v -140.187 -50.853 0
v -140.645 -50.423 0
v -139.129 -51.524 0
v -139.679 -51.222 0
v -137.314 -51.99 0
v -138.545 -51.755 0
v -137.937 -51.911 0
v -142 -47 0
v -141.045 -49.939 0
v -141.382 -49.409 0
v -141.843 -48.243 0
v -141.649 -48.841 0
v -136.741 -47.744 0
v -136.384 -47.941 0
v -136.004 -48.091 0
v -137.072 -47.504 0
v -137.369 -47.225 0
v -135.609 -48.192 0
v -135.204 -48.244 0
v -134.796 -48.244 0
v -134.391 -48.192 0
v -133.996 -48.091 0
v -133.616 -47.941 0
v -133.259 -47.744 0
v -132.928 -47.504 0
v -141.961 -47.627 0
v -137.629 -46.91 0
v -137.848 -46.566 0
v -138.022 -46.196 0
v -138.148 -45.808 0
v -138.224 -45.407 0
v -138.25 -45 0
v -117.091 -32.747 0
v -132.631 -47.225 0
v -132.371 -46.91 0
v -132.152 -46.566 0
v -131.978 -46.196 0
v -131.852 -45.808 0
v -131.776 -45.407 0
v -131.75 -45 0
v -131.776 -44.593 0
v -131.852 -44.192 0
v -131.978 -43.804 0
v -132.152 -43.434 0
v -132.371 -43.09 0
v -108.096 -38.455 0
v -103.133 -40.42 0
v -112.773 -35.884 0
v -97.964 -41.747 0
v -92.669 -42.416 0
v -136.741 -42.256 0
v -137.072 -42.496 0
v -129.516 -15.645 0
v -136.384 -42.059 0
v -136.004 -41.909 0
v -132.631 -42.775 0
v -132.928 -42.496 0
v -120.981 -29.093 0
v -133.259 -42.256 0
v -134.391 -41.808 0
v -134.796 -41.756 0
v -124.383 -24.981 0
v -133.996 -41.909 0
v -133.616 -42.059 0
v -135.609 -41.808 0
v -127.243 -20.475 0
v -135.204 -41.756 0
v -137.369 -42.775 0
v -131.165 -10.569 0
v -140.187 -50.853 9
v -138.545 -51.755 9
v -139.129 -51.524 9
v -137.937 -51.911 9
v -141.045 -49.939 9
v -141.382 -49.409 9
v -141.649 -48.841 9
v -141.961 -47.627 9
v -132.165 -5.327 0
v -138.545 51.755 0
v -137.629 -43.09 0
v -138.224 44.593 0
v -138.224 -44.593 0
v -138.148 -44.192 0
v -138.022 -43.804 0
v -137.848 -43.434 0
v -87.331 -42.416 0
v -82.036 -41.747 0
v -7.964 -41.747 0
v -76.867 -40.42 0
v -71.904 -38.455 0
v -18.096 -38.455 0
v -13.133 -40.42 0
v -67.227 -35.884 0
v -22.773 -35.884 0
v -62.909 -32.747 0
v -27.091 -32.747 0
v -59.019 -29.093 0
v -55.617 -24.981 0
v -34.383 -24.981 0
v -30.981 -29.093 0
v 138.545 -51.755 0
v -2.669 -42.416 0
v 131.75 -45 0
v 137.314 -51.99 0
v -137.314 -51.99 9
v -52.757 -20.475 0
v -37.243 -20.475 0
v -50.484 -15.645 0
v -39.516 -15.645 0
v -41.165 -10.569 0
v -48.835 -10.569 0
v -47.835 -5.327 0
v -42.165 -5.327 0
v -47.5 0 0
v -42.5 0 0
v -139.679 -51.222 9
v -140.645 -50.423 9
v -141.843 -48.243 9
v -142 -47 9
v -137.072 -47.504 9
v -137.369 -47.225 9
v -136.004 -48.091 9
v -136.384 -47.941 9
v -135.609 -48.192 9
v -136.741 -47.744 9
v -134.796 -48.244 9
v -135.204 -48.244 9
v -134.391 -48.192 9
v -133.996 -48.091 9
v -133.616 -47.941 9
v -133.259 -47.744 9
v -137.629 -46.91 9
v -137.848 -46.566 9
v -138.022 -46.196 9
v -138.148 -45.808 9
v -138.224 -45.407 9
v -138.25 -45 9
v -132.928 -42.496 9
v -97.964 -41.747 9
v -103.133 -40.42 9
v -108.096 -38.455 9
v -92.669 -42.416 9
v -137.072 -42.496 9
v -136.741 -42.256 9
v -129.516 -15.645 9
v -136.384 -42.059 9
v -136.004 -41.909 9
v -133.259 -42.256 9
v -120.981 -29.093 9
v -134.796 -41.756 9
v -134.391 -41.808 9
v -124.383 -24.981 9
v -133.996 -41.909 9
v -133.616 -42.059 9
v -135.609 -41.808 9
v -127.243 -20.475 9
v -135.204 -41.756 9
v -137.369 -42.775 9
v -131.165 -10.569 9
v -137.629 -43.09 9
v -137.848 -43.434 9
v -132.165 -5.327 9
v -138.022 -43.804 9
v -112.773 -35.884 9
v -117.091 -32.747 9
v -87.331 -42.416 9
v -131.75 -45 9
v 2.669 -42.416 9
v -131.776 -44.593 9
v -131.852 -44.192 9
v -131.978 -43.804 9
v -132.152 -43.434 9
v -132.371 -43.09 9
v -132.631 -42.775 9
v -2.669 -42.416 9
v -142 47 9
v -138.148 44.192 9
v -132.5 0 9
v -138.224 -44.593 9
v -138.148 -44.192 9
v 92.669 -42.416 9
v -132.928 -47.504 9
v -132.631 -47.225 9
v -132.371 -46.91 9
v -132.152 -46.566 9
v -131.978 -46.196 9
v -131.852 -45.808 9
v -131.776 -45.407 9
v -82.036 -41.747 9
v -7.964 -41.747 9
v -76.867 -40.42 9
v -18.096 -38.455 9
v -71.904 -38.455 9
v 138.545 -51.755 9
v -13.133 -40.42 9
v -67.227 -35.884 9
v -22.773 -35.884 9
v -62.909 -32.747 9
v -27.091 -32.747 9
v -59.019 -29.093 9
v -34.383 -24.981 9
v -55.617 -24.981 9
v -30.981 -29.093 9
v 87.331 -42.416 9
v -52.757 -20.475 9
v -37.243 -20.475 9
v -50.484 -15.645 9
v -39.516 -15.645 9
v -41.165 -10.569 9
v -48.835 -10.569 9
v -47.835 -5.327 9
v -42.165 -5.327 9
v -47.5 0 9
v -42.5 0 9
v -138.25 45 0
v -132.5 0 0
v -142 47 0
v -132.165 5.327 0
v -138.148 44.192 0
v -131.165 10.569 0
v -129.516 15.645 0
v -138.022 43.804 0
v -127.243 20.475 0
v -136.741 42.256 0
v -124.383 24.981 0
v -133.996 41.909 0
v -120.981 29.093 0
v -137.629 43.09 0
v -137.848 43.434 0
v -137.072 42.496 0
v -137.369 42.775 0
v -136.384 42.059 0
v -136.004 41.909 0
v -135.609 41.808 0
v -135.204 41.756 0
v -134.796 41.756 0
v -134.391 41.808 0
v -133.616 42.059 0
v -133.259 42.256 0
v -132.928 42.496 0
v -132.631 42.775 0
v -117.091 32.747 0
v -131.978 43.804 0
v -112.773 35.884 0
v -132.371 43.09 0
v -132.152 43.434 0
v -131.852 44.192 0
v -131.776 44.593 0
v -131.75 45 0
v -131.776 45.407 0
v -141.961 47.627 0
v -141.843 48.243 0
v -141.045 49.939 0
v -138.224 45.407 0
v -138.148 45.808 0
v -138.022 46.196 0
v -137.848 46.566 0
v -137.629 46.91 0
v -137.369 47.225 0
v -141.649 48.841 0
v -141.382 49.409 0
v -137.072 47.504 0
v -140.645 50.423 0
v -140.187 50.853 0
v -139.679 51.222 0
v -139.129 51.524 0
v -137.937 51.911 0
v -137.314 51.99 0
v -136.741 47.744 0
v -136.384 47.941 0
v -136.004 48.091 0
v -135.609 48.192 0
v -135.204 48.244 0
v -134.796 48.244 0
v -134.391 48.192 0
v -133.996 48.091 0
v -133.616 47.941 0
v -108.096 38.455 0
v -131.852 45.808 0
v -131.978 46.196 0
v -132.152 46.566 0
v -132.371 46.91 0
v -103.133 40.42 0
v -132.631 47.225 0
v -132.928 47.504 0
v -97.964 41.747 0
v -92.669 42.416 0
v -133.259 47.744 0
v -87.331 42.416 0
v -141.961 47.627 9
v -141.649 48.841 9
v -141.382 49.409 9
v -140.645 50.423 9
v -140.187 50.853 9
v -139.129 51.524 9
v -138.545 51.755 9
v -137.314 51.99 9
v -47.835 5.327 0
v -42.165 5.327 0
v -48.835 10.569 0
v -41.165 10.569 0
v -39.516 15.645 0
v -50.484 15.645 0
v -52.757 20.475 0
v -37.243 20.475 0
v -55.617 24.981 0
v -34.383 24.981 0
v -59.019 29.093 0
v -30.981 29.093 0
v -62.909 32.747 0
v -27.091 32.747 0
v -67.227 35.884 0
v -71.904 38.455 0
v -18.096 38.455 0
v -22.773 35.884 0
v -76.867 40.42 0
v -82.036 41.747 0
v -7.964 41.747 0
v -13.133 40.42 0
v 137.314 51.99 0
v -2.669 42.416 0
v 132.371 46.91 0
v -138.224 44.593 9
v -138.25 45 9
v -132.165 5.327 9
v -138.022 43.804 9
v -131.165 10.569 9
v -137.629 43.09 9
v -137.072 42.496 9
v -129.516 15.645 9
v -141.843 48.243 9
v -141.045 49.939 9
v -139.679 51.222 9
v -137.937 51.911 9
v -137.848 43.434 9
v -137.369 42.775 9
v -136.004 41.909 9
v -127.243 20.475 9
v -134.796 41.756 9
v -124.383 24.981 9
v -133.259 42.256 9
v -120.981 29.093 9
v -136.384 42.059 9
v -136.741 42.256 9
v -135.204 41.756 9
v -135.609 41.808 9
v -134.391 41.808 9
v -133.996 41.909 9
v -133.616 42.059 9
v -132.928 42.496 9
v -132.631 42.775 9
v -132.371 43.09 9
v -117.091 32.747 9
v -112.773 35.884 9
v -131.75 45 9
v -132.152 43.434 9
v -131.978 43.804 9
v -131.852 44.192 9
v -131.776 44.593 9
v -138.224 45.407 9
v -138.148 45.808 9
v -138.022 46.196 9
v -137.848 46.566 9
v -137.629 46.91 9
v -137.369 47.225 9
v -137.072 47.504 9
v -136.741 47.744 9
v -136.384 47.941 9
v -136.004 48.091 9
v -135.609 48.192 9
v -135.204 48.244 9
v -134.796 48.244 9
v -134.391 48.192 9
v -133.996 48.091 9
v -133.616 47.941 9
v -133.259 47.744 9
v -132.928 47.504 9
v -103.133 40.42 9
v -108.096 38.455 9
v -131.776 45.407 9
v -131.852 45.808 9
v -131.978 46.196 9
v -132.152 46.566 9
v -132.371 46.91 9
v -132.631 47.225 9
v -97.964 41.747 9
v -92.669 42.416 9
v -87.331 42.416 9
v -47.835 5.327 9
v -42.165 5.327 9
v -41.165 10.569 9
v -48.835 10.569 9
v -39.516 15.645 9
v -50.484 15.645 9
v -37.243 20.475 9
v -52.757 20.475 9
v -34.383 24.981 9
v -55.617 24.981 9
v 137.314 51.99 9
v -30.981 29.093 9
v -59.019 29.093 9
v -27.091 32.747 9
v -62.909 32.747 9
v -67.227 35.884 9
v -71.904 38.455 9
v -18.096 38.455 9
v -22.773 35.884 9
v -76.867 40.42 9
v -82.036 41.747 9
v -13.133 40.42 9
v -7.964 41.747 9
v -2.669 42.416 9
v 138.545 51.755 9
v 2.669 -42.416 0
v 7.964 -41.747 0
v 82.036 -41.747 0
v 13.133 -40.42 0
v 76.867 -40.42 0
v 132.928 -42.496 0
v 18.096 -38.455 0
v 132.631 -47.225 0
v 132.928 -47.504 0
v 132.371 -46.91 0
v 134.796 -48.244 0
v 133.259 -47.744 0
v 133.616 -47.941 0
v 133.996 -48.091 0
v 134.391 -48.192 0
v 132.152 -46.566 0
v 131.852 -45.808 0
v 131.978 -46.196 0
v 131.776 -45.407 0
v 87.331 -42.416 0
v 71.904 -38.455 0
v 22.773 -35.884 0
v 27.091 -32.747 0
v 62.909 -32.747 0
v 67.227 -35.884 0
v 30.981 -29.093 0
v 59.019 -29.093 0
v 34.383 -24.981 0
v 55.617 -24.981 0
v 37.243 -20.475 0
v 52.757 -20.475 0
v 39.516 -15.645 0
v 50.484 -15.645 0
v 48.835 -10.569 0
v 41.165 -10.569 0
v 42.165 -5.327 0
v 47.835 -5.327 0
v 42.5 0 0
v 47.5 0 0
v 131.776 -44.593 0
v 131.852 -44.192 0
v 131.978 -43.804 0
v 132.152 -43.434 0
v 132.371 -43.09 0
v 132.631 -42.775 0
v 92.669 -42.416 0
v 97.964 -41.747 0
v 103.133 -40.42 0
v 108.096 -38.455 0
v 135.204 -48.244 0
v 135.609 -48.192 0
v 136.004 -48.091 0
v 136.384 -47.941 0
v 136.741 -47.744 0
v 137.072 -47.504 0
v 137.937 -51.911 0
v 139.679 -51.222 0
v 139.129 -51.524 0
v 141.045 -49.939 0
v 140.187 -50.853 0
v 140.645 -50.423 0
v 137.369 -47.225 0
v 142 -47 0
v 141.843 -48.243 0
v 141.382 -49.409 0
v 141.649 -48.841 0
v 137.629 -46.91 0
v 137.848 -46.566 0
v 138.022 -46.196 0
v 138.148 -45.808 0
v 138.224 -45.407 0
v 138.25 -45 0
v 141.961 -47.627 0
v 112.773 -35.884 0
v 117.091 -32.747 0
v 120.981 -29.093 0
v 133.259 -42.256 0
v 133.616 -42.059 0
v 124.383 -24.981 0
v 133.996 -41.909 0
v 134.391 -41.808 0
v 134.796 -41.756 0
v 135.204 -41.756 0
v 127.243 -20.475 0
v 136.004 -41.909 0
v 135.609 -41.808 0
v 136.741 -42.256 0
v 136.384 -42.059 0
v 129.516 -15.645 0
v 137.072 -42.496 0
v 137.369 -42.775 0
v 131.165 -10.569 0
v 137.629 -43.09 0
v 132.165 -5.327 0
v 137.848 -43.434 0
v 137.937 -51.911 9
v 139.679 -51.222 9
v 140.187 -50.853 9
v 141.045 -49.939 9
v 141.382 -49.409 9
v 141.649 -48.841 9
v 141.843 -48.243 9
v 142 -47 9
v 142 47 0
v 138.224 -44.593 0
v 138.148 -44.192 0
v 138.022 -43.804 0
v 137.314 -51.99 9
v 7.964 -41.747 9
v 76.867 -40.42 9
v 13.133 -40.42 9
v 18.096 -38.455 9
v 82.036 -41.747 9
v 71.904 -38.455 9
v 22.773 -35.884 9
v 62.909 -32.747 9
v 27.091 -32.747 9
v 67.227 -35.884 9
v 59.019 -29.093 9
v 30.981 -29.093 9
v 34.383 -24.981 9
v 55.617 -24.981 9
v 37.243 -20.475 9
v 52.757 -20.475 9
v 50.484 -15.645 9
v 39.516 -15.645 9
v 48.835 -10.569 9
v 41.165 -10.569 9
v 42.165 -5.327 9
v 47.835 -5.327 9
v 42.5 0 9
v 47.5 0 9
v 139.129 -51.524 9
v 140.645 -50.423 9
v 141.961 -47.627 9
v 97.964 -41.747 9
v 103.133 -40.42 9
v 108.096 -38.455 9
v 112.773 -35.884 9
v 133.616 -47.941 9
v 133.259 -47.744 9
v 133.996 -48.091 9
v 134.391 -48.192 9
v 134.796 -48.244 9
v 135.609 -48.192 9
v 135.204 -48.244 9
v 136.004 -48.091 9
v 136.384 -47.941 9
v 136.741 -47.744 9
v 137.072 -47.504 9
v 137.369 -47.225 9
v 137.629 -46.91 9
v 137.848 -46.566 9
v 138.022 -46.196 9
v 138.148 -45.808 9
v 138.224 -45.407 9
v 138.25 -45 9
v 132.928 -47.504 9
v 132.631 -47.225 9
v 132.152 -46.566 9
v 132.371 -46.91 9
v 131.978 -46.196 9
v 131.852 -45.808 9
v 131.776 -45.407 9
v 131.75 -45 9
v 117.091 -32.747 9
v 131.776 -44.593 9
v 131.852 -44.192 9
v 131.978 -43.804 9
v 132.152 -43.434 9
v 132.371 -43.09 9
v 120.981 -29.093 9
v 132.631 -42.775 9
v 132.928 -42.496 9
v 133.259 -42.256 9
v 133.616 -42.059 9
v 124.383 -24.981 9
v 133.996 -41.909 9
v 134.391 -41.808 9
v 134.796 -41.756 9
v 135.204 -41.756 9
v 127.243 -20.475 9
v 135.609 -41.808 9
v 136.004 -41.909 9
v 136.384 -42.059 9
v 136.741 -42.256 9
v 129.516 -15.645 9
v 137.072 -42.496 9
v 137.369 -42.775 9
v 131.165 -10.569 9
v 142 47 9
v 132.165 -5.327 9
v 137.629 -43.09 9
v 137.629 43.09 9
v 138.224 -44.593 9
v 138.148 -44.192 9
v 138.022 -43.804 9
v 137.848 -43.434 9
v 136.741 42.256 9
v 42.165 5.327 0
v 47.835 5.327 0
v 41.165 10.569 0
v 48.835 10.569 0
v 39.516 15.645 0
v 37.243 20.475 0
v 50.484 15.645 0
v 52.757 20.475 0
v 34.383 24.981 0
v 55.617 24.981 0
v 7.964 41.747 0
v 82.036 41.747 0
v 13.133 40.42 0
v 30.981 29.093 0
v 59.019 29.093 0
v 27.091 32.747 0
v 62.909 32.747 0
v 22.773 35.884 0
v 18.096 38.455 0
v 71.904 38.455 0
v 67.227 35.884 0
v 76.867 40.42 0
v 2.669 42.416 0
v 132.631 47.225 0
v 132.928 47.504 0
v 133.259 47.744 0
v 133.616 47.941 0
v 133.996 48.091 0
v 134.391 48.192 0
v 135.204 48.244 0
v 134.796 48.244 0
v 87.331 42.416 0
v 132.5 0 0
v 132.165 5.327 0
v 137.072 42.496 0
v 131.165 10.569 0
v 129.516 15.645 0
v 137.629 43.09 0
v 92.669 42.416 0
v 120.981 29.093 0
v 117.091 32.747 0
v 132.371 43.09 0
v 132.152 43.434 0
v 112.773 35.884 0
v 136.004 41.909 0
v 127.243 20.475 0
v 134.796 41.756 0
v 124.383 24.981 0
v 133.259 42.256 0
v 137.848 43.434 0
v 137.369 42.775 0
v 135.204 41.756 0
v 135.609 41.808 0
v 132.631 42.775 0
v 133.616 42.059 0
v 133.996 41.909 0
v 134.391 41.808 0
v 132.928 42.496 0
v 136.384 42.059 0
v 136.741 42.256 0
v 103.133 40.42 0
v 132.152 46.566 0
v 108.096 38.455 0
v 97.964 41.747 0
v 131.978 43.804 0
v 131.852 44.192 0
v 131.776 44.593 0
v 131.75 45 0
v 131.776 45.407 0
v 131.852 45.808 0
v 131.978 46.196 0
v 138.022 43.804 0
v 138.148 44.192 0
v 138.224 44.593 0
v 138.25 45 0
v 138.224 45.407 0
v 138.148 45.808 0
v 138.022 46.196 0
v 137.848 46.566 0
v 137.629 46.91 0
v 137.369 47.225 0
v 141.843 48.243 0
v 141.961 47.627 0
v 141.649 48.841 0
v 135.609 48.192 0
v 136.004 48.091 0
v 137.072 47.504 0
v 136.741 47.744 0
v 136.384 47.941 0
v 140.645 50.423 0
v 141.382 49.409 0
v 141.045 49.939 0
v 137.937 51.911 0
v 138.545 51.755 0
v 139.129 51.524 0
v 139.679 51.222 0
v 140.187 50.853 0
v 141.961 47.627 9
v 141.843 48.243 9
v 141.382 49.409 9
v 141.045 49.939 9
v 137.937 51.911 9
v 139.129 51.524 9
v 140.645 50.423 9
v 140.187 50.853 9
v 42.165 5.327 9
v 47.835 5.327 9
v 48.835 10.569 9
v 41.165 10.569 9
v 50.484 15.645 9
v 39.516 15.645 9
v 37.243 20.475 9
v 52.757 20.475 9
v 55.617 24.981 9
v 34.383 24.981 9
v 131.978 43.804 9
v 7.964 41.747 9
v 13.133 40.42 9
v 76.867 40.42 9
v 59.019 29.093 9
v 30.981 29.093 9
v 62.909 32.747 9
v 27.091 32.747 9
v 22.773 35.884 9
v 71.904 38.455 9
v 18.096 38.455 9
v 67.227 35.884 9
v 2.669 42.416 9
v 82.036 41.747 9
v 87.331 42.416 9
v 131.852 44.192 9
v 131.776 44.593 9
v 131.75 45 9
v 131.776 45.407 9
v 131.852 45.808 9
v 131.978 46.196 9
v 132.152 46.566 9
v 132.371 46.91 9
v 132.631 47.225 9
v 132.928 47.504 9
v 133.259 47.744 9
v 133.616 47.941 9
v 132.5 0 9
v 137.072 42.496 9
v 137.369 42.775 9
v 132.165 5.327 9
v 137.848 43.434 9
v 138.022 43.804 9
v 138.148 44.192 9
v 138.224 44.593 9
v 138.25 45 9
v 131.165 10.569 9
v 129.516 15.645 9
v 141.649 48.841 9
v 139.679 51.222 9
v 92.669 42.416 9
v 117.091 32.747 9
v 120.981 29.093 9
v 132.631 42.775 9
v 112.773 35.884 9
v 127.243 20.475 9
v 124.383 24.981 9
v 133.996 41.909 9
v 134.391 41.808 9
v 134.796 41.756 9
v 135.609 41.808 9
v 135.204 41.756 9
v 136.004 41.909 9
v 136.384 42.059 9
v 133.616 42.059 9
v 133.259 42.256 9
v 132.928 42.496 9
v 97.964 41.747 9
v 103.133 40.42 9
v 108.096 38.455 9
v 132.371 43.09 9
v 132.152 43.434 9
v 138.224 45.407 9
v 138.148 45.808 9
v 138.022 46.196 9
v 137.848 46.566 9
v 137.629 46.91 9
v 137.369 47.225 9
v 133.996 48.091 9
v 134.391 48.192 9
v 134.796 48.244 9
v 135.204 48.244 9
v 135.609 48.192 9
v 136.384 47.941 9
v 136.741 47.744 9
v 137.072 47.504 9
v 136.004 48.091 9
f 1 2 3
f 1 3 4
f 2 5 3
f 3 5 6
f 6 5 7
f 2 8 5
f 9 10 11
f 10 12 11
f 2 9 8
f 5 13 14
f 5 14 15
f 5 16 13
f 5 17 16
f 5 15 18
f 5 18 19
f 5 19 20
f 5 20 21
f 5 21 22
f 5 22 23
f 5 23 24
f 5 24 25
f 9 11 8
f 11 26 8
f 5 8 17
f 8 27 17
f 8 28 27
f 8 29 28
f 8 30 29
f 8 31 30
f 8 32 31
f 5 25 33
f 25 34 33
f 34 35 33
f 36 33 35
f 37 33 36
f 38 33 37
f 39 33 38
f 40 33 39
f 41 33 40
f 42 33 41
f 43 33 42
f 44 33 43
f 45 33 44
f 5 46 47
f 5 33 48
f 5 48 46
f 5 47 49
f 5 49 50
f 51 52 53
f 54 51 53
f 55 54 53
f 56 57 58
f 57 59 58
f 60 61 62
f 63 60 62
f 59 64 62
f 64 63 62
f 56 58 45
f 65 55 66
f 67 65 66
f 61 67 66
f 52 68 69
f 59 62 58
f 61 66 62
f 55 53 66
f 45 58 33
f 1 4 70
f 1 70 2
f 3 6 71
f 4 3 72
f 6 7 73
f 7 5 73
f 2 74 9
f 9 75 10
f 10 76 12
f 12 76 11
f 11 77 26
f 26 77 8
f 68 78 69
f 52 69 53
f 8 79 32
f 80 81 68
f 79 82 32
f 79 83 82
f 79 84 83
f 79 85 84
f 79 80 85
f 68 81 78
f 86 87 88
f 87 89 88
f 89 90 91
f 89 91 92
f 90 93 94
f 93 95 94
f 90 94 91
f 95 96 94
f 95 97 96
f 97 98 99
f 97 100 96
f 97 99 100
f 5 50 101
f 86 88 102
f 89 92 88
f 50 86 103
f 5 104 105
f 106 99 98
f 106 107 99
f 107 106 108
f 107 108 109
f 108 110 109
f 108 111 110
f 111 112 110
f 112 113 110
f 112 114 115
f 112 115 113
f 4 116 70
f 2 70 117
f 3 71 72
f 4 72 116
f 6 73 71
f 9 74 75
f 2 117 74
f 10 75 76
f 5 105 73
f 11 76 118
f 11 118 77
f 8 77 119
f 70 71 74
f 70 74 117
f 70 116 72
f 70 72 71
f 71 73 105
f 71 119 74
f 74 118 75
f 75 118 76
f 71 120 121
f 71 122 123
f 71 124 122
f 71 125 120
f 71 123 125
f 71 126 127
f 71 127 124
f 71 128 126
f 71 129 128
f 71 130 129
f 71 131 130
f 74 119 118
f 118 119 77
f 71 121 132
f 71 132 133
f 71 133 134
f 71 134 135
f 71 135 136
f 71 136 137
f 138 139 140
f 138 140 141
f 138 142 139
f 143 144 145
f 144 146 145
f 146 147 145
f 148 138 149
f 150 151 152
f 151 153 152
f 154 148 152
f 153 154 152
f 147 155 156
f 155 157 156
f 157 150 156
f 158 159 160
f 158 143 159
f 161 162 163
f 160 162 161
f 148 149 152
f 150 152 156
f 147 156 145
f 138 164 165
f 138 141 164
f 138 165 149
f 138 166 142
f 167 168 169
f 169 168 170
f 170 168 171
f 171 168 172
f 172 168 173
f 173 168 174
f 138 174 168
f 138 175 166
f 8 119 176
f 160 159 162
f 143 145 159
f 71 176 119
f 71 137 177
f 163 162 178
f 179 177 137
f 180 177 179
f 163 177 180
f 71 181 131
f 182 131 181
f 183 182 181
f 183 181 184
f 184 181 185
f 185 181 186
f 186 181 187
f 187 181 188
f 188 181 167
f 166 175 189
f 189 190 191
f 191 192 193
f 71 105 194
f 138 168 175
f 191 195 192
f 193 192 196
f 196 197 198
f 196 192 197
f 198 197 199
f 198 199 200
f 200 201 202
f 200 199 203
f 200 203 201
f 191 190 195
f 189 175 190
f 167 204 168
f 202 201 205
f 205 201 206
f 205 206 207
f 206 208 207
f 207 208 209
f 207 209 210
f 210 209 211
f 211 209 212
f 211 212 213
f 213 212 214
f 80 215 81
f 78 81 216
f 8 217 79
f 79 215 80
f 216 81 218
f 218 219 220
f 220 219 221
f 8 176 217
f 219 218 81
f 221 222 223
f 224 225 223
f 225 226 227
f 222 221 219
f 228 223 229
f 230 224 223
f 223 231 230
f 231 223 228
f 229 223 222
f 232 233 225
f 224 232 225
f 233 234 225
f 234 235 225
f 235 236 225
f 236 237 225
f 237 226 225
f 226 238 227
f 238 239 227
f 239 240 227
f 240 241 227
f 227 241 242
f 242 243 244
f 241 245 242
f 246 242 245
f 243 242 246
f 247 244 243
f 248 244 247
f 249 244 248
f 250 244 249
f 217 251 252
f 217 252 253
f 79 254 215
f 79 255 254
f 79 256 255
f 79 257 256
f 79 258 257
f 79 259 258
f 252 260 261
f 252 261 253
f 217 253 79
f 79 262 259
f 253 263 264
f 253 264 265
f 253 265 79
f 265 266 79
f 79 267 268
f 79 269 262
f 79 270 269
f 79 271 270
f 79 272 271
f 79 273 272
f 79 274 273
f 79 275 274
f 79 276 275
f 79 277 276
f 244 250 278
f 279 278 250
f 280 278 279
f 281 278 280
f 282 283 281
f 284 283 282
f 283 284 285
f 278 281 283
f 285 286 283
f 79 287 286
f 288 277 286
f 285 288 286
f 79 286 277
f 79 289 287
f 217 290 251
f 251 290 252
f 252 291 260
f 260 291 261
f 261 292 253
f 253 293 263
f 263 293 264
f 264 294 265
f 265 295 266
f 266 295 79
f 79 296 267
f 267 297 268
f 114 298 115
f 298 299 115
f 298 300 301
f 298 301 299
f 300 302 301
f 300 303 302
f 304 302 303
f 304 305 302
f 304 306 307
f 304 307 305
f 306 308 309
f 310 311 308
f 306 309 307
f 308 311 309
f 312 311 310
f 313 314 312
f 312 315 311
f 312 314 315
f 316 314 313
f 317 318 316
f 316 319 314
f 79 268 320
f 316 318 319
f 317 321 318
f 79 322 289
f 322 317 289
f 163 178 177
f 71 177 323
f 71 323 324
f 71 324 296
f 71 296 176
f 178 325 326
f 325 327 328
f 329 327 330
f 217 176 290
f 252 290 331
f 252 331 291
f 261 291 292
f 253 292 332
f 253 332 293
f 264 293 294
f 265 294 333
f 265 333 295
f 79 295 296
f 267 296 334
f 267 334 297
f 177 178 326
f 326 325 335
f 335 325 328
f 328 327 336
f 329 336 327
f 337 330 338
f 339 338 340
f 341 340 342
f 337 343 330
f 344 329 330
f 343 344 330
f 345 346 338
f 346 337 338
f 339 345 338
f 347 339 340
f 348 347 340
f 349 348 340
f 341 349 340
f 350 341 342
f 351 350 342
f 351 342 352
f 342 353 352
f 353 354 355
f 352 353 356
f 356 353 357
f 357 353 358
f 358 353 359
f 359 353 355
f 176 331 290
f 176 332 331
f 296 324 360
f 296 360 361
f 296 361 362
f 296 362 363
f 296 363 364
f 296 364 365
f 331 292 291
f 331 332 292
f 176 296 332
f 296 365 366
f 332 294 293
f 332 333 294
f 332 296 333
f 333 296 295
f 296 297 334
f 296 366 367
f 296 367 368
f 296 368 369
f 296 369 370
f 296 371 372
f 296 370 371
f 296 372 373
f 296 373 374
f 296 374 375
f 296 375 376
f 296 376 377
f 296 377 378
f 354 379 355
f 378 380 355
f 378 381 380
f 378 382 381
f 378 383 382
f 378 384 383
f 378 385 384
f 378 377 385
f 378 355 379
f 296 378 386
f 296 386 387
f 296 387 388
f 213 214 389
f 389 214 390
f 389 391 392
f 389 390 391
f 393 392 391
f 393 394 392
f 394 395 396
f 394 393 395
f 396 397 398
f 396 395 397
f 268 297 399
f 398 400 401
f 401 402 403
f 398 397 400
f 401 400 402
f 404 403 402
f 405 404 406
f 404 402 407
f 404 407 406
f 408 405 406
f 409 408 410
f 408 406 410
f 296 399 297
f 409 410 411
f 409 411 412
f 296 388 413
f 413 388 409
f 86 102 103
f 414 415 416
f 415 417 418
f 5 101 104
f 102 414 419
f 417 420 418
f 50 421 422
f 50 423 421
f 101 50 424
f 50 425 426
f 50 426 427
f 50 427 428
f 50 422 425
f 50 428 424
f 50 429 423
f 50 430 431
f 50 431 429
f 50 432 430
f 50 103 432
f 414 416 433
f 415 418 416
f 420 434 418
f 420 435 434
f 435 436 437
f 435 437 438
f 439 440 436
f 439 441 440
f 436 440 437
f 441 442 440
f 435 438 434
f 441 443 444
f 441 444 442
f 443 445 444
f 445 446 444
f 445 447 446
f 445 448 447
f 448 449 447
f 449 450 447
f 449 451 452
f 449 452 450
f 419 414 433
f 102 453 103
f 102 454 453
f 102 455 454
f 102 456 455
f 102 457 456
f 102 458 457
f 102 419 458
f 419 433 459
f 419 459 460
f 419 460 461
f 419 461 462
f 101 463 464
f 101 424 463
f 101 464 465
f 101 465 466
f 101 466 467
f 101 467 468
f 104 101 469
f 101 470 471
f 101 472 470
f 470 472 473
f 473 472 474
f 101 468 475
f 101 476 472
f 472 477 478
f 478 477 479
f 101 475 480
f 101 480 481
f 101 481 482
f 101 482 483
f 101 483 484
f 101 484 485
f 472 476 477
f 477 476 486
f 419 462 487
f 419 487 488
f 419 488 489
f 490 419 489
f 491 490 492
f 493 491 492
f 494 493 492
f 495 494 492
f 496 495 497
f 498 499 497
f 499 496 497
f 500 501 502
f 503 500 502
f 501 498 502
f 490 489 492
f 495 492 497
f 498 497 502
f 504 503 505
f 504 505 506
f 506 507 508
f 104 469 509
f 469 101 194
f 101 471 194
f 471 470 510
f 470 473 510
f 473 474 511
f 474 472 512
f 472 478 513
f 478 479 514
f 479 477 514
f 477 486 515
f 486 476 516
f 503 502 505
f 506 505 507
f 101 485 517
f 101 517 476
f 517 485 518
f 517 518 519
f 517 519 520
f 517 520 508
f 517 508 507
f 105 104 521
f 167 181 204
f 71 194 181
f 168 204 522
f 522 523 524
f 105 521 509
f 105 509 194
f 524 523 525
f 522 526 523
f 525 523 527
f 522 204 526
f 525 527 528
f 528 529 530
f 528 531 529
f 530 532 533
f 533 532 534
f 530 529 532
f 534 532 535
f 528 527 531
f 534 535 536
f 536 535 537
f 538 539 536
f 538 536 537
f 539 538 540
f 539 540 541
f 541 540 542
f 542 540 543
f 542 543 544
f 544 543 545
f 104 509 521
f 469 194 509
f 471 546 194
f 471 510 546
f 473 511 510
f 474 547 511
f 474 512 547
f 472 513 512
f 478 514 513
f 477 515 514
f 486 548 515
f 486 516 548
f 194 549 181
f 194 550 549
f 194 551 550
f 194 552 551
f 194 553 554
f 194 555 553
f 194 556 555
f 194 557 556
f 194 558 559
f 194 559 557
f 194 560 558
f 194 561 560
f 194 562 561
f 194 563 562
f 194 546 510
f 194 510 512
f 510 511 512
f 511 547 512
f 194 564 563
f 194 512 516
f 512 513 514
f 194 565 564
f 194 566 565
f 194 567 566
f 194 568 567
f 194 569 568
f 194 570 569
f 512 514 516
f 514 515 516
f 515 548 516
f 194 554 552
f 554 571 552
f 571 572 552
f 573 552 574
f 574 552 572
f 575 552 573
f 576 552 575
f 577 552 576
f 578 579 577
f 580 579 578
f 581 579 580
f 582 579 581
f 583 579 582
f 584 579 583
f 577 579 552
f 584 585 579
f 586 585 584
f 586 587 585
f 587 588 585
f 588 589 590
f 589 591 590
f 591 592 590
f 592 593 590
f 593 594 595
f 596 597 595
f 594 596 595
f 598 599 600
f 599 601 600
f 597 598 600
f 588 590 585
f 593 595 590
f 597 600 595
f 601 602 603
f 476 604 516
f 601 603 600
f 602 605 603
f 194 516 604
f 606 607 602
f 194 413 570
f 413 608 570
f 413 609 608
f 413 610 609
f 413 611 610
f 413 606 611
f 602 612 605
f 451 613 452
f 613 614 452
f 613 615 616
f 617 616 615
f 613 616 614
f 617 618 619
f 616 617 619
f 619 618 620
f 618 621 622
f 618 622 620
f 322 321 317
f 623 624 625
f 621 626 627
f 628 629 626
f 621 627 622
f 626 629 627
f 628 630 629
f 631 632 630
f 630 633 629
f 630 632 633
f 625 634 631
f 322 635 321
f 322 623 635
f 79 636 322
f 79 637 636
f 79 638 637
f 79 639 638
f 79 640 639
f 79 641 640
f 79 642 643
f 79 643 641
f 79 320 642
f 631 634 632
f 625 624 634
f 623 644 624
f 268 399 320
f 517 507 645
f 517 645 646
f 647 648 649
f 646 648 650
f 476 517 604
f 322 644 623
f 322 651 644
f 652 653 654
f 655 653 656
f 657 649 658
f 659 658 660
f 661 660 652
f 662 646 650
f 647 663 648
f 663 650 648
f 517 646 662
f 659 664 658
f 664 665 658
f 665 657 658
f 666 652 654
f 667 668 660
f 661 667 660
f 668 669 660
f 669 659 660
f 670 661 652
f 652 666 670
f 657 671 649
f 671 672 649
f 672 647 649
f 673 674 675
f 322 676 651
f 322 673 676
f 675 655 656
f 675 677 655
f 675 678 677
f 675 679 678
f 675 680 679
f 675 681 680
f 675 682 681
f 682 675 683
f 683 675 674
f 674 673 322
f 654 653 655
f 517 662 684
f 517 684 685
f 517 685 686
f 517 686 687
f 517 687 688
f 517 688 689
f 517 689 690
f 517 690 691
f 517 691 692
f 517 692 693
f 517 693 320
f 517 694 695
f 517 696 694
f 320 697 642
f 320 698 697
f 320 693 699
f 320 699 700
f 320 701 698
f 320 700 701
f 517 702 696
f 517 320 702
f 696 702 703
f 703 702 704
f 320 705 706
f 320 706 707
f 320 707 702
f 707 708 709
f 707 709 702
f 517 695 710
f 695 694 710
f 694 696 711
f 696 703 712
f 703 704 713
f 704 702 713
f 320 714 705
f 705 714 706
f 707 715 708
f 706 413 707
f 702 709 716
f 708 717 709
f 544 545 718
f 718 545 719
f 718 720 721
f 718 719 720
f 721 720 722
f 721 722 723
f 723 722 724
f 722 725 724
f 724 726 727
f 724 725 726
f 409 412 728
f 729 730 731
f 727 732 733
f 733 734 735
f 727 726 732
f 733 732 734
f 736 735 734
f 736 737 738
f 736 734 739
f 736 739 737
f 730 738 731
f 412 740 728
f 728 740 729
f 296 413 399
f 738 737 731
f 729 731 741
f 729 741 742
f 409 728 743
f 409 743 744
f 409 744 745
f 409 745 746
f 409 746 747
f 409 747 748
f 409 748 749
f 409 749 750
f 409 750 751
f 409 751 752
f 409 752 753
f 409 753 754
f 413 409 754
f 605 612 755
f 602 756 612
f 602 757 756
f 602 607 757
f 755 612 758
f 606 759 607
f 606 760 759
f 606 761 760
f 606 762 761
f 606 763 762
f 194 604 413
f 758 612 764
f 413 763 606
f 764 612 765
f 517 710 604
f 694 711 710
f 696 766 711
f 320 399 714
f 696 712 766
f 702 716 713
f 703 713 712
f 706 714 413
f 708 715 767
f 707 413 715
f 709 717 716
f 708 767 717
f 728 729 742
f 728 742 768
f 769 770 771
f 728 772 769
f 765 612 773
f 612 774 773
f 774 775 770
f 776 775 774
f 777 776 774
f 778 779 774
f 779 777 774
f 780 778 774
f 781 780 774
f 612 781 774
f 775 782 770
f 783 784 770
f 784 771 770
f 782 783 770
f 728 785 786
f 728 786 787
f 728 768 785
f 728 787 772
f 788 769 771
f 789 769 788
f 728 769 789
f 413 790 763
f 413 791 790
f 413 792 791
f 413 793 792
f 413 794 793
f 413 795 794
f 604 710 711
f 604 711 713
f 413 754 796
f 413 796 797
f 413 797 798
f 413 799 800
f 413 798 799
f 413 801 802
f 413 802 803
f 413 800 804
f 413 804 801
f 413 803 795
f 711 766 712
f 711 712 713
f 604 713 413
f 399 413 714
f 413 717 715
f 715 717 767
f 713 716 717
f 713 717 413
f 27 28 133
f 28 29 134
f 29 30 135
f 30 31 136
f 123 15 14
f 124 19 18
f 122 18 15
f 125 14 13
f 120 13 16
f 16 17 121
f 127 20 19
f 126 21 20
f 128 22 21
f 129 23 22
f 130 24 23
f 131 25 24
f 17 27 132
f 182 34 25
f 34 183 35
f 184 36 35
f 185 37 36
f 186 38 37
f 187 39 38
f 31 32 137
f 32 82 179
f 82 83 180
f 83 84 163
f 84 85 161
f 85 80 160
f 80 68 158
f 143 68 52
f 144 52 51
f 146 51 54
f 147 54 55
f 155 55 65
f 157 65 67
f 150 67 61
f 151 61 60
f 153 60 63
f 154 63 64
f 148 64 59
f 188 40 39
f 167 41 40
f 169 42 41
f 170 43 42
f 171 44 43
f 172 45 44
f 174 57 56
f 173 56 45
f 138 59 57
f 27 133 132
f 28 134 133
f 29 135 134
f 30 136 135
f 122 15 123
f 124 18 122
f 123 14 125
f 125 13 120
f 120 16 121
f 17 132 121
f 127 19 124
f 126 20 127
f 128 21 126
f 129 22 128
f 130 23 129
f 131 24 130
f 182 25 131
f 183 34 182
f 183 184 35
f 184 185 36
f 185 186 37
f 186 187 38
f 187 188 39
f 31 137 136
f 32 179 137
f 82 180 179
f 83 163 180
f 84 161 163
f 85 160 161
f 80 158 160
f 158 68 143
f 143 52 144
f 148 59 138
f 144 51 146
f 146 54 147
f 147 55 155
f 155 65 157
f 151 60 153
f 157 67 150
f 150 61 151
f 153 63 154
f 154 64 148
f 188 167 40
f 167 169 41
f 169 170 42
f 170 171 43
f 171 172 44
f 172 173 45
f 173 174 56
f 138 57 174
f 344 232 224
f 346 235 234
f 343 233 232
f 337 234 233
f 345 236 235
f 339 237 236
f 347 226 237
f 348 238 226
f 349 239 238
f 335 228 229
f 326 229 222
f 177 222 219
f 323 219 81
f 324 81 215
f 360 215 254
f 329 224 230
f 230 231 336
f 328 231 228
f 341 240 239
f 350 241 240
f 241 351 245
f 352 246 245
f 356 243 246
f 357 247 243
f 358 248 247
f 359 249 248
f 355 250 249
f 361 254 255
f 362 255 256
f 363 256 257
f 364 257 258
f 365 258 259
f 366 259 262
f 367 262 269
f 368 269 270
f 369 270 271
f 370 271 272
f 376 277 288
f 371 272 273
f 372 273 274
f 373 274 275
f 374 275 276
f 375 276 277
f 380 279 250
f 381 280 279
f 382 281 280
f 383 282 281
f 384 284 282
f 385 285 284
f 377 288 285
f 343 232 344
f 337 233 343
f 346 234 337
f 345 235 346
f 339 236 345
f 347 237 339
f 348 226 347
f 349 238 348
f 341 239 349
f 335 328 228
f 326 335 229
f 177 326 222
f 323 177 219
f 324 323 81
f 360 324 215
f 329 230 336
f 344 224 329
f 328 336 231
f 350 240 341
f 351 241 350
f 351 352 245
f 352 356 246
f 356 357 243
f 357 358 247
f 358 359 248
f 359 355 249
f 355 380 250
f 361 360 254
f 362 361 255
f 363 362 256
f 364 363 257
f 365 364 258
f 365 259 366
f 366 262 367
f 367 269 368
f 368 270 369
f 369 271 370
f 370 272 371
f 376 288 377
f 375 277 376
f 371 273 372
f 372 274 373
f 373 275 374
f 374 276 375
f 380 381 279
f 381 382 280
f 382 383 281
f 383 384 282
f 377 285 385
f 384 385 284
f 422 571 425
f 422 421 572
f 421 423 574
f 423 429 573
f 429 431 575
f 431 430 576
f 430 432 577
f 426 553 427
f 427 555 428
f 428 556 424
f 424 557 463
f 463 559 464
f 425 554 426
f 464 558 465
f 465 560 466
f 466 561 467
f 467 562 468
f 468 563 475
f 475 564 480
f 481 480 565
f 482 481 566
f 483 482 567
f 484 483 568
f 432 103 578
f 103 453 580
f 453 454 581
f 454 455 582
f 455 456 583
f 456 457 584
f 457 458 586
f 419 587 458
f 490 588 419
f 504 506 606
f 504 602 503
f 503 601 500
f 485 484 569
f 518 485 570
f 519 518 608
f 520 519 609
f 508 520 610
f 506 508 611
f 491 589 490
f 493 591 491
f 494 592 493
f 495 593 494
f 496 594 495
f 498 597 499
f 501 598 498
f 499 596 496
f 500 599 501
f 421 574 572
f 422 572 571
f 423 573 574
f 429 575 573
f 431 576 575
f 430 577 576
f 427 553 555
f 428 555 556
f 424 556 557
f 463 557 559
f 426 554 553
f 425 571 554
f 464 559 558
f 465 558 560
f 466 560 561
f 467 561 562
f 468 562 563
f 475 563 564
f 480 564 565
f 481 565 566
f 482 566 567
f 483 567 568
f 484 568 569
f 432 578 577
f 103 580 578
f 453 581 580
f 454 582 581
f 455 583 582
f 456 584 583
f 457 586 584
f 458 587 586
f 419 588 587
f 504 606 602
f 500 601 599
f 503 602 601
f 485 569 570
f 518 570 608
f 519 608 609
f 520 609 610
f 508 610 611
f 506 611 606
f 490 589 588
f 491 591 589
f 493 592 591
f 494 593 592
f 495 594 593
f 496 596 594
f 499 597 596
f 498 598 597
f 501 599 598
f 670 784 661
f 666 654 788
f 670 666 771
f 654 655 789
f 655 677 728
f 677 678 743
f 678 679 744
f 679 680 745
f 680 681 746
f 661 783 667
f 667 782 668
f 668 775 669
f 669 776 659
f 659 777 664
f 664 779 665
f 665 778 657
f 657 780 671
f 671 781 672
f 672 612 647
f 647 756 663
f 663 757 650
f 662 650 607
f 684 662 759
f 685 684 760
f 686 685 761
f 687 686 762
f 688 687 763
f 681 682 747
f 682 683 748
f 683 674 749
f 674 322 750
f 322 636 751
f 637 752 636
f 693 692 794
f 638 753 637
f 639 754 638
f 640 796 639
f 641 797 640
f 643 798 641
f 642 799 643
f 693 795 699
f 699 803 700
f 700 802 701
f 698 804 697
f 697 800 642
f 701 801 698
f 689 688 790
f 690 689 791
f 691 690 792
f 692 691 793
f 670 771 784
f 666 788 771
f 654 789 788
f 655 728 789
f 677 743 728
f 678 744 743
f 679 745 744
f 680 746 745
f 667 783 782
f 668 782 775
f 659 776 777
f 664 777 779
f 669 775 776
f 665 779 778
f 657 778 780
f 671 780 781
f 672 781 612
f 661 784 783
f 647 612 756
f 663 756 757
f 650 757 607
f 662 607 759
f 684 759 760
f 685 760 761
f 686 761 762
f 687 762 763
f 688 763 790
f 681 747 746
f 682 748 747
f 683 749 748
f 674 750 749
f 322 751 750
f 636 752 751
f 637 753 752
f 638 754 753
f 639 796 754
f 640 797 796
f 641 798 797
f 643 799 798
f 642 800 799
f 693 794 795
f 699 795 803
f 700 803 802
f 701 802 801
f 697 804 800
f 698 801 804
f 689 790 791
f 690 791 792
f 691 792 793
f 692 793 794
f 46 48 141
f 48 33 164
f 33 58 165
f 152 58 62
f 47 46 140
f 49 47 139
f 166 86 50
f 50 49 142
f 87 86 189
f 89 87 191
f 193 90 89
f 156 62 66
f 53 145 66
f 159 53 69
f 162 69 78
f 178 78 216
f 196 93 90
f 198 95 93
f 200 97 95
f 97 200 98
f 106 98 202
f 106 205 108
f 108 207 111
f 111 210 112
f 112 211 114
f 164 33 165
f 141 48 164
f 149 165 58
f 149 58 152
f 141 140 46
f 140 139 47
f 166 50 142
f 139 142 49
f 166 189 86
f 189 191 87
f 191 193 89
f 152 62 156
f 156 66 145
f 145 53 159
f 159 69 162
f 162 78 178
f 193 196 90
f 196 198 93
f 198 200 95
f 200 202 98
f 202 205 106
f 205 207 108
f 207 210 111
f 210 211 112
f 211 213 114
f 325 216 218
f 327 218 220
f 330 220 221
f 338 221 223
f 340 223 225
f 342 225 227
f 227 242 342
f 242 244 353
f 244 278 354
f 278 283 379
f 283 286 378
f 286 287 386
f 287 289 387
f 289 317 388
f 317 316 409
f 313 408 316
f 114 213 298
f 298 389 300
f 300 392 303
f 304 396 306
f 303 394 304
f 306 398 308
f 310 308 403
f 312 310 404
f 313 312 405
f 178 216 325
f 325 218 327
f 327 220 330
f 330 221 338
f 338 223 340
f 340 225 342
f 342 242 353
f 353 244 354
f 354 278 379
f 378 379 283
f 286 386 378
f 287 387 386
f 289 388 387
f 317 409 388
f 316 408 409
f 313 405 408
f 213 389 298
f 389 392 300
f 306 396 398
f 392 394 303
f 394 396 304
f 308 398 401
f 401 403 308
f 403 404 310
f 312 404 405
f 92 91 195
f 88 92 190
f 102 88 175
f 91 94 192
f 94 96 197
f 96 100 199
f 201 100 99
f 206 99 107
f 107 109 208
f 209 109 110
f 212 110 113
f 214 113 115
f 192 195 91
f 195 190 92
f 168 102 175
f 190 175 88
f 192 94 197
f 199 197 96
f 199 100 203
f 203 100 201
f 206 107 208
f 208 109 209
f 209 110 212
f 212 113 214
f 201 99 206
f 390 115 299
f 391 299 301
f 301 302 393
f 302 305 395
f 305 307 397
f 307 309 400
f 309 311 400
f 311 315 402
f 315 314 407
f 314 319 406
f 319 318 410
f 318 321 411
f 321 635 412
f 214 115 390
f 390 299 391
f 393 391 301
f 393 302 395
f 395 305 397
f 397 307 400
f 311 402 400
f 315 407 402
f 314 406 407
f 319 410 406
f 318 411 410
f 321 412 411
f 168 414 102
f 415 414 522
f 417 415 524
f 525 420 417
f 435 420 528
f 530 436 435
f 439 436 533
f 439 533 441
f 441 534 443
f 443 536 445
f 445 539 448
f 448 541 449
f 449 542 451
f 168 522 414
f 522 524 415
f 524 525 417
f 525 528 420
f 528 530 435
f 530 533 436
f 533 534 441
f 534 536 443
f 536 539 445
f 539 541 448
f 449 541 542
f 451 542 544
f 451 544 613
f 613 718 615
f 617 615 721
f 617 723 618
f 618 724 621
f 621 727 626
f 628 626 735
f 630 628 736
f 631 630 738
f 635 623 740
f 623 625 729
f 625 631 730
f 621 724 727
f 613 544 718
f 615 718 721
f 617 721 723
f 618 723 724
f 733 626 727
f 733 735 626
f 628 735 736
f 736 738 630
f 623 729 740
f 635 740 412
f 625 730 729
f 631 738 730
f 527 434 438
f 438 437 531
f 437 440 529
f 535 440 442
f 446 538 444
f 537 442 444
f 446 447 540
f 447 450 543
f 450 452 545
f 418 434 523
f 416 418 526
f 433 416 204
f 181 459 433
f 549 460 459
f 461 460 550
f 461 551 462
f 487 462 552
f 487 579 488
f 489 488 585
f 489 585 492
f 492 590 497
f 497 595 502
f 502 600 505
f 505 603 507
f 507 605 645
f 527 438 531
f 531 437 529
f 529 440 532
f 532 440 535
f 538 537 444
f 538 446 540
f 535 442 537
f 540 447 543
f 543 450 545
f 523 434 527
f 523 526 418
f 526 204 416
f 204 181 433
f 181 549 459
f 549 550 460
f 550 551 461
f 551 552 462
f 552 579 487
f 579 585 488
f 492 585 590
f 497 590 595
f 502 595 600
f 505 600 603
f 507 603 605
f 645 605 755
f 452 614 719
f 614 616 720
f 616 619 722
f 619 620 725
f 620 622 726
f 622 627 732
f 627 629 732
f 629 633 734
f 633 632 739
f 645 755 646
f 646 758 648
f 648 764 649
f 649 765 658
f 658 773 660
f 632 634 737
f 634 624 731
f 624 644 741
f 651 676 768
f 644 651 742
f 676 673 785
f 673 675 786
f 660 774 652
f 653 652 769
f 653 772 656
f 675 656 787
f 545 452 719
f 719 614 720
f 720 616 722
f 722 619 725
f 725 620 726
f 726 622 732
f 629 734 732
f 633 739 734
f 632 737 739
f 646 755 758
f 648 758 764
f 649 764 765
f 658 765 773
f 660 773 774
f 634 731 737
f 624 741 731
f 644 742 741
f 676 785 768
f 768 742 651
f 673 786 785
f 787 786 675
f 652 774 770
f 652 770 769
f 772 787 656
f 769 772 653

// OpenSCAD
$fn = 50;

difference() {
	union() {
		hull() {
			translate(v = [-137.0, 47.0, 0]) {
				cylinder(h = 9, r = 5);
			}
			translate(v = [137.0, 47.0, 0]) {
				cylinder(h = 9, r = 5);
			}
			translate(v = [-137.0, -47.0, 0]) {
				cylinder(h = 9, r = 5);
			}
			translate(v = [137.0, -47.0, 0]) {
				cylinder(h = 9, r = 5);
			}
		}
	}
	union() {
		translate(v = [-135.0, -45.0, -100.0]) {
			cylinder(h = 200, r = 3.25);
		}
		translate(v = [-135.0, 45.0, -100.0]) {
			cylinder(h = 200, r = 3.25);
		}
		translate(v = [135.0, -45.0, -100.0]) {
			cylinder(h = 200, r = 3.25);
		}
		translate(v = [135.0, 45.0, -100.0]) {
			cylinder(h = 200, r = 3.25);
		}
		translate(v = [-135.0, -45.0, -100.0]) {
			cylinder(h = 200, r = 1.8);
		}
		translate(v = [-135.0, 45.0, -100.0]) {
			cylinder(h = 200, r = 1.8);
		}
		translate(v = [135.0, -45.0, -100.0]) {
			cylinder(h = 200, r = 1.8);
		}
		translate(v = [135.0, 45.0, -100.0]) {
			cylinder(h = 200, r = 1.8);
		}
		translate(v = [-90.0, 0, 0.0]) {
			cylinder(h = 9, r = 42.5);
		}
		cylinder(h = 9, r = 42.5);
		translate(v = [90.0, 0, 0.0]) {
			cylinder(h = 9, r = 42.5);
		}
	}
}
